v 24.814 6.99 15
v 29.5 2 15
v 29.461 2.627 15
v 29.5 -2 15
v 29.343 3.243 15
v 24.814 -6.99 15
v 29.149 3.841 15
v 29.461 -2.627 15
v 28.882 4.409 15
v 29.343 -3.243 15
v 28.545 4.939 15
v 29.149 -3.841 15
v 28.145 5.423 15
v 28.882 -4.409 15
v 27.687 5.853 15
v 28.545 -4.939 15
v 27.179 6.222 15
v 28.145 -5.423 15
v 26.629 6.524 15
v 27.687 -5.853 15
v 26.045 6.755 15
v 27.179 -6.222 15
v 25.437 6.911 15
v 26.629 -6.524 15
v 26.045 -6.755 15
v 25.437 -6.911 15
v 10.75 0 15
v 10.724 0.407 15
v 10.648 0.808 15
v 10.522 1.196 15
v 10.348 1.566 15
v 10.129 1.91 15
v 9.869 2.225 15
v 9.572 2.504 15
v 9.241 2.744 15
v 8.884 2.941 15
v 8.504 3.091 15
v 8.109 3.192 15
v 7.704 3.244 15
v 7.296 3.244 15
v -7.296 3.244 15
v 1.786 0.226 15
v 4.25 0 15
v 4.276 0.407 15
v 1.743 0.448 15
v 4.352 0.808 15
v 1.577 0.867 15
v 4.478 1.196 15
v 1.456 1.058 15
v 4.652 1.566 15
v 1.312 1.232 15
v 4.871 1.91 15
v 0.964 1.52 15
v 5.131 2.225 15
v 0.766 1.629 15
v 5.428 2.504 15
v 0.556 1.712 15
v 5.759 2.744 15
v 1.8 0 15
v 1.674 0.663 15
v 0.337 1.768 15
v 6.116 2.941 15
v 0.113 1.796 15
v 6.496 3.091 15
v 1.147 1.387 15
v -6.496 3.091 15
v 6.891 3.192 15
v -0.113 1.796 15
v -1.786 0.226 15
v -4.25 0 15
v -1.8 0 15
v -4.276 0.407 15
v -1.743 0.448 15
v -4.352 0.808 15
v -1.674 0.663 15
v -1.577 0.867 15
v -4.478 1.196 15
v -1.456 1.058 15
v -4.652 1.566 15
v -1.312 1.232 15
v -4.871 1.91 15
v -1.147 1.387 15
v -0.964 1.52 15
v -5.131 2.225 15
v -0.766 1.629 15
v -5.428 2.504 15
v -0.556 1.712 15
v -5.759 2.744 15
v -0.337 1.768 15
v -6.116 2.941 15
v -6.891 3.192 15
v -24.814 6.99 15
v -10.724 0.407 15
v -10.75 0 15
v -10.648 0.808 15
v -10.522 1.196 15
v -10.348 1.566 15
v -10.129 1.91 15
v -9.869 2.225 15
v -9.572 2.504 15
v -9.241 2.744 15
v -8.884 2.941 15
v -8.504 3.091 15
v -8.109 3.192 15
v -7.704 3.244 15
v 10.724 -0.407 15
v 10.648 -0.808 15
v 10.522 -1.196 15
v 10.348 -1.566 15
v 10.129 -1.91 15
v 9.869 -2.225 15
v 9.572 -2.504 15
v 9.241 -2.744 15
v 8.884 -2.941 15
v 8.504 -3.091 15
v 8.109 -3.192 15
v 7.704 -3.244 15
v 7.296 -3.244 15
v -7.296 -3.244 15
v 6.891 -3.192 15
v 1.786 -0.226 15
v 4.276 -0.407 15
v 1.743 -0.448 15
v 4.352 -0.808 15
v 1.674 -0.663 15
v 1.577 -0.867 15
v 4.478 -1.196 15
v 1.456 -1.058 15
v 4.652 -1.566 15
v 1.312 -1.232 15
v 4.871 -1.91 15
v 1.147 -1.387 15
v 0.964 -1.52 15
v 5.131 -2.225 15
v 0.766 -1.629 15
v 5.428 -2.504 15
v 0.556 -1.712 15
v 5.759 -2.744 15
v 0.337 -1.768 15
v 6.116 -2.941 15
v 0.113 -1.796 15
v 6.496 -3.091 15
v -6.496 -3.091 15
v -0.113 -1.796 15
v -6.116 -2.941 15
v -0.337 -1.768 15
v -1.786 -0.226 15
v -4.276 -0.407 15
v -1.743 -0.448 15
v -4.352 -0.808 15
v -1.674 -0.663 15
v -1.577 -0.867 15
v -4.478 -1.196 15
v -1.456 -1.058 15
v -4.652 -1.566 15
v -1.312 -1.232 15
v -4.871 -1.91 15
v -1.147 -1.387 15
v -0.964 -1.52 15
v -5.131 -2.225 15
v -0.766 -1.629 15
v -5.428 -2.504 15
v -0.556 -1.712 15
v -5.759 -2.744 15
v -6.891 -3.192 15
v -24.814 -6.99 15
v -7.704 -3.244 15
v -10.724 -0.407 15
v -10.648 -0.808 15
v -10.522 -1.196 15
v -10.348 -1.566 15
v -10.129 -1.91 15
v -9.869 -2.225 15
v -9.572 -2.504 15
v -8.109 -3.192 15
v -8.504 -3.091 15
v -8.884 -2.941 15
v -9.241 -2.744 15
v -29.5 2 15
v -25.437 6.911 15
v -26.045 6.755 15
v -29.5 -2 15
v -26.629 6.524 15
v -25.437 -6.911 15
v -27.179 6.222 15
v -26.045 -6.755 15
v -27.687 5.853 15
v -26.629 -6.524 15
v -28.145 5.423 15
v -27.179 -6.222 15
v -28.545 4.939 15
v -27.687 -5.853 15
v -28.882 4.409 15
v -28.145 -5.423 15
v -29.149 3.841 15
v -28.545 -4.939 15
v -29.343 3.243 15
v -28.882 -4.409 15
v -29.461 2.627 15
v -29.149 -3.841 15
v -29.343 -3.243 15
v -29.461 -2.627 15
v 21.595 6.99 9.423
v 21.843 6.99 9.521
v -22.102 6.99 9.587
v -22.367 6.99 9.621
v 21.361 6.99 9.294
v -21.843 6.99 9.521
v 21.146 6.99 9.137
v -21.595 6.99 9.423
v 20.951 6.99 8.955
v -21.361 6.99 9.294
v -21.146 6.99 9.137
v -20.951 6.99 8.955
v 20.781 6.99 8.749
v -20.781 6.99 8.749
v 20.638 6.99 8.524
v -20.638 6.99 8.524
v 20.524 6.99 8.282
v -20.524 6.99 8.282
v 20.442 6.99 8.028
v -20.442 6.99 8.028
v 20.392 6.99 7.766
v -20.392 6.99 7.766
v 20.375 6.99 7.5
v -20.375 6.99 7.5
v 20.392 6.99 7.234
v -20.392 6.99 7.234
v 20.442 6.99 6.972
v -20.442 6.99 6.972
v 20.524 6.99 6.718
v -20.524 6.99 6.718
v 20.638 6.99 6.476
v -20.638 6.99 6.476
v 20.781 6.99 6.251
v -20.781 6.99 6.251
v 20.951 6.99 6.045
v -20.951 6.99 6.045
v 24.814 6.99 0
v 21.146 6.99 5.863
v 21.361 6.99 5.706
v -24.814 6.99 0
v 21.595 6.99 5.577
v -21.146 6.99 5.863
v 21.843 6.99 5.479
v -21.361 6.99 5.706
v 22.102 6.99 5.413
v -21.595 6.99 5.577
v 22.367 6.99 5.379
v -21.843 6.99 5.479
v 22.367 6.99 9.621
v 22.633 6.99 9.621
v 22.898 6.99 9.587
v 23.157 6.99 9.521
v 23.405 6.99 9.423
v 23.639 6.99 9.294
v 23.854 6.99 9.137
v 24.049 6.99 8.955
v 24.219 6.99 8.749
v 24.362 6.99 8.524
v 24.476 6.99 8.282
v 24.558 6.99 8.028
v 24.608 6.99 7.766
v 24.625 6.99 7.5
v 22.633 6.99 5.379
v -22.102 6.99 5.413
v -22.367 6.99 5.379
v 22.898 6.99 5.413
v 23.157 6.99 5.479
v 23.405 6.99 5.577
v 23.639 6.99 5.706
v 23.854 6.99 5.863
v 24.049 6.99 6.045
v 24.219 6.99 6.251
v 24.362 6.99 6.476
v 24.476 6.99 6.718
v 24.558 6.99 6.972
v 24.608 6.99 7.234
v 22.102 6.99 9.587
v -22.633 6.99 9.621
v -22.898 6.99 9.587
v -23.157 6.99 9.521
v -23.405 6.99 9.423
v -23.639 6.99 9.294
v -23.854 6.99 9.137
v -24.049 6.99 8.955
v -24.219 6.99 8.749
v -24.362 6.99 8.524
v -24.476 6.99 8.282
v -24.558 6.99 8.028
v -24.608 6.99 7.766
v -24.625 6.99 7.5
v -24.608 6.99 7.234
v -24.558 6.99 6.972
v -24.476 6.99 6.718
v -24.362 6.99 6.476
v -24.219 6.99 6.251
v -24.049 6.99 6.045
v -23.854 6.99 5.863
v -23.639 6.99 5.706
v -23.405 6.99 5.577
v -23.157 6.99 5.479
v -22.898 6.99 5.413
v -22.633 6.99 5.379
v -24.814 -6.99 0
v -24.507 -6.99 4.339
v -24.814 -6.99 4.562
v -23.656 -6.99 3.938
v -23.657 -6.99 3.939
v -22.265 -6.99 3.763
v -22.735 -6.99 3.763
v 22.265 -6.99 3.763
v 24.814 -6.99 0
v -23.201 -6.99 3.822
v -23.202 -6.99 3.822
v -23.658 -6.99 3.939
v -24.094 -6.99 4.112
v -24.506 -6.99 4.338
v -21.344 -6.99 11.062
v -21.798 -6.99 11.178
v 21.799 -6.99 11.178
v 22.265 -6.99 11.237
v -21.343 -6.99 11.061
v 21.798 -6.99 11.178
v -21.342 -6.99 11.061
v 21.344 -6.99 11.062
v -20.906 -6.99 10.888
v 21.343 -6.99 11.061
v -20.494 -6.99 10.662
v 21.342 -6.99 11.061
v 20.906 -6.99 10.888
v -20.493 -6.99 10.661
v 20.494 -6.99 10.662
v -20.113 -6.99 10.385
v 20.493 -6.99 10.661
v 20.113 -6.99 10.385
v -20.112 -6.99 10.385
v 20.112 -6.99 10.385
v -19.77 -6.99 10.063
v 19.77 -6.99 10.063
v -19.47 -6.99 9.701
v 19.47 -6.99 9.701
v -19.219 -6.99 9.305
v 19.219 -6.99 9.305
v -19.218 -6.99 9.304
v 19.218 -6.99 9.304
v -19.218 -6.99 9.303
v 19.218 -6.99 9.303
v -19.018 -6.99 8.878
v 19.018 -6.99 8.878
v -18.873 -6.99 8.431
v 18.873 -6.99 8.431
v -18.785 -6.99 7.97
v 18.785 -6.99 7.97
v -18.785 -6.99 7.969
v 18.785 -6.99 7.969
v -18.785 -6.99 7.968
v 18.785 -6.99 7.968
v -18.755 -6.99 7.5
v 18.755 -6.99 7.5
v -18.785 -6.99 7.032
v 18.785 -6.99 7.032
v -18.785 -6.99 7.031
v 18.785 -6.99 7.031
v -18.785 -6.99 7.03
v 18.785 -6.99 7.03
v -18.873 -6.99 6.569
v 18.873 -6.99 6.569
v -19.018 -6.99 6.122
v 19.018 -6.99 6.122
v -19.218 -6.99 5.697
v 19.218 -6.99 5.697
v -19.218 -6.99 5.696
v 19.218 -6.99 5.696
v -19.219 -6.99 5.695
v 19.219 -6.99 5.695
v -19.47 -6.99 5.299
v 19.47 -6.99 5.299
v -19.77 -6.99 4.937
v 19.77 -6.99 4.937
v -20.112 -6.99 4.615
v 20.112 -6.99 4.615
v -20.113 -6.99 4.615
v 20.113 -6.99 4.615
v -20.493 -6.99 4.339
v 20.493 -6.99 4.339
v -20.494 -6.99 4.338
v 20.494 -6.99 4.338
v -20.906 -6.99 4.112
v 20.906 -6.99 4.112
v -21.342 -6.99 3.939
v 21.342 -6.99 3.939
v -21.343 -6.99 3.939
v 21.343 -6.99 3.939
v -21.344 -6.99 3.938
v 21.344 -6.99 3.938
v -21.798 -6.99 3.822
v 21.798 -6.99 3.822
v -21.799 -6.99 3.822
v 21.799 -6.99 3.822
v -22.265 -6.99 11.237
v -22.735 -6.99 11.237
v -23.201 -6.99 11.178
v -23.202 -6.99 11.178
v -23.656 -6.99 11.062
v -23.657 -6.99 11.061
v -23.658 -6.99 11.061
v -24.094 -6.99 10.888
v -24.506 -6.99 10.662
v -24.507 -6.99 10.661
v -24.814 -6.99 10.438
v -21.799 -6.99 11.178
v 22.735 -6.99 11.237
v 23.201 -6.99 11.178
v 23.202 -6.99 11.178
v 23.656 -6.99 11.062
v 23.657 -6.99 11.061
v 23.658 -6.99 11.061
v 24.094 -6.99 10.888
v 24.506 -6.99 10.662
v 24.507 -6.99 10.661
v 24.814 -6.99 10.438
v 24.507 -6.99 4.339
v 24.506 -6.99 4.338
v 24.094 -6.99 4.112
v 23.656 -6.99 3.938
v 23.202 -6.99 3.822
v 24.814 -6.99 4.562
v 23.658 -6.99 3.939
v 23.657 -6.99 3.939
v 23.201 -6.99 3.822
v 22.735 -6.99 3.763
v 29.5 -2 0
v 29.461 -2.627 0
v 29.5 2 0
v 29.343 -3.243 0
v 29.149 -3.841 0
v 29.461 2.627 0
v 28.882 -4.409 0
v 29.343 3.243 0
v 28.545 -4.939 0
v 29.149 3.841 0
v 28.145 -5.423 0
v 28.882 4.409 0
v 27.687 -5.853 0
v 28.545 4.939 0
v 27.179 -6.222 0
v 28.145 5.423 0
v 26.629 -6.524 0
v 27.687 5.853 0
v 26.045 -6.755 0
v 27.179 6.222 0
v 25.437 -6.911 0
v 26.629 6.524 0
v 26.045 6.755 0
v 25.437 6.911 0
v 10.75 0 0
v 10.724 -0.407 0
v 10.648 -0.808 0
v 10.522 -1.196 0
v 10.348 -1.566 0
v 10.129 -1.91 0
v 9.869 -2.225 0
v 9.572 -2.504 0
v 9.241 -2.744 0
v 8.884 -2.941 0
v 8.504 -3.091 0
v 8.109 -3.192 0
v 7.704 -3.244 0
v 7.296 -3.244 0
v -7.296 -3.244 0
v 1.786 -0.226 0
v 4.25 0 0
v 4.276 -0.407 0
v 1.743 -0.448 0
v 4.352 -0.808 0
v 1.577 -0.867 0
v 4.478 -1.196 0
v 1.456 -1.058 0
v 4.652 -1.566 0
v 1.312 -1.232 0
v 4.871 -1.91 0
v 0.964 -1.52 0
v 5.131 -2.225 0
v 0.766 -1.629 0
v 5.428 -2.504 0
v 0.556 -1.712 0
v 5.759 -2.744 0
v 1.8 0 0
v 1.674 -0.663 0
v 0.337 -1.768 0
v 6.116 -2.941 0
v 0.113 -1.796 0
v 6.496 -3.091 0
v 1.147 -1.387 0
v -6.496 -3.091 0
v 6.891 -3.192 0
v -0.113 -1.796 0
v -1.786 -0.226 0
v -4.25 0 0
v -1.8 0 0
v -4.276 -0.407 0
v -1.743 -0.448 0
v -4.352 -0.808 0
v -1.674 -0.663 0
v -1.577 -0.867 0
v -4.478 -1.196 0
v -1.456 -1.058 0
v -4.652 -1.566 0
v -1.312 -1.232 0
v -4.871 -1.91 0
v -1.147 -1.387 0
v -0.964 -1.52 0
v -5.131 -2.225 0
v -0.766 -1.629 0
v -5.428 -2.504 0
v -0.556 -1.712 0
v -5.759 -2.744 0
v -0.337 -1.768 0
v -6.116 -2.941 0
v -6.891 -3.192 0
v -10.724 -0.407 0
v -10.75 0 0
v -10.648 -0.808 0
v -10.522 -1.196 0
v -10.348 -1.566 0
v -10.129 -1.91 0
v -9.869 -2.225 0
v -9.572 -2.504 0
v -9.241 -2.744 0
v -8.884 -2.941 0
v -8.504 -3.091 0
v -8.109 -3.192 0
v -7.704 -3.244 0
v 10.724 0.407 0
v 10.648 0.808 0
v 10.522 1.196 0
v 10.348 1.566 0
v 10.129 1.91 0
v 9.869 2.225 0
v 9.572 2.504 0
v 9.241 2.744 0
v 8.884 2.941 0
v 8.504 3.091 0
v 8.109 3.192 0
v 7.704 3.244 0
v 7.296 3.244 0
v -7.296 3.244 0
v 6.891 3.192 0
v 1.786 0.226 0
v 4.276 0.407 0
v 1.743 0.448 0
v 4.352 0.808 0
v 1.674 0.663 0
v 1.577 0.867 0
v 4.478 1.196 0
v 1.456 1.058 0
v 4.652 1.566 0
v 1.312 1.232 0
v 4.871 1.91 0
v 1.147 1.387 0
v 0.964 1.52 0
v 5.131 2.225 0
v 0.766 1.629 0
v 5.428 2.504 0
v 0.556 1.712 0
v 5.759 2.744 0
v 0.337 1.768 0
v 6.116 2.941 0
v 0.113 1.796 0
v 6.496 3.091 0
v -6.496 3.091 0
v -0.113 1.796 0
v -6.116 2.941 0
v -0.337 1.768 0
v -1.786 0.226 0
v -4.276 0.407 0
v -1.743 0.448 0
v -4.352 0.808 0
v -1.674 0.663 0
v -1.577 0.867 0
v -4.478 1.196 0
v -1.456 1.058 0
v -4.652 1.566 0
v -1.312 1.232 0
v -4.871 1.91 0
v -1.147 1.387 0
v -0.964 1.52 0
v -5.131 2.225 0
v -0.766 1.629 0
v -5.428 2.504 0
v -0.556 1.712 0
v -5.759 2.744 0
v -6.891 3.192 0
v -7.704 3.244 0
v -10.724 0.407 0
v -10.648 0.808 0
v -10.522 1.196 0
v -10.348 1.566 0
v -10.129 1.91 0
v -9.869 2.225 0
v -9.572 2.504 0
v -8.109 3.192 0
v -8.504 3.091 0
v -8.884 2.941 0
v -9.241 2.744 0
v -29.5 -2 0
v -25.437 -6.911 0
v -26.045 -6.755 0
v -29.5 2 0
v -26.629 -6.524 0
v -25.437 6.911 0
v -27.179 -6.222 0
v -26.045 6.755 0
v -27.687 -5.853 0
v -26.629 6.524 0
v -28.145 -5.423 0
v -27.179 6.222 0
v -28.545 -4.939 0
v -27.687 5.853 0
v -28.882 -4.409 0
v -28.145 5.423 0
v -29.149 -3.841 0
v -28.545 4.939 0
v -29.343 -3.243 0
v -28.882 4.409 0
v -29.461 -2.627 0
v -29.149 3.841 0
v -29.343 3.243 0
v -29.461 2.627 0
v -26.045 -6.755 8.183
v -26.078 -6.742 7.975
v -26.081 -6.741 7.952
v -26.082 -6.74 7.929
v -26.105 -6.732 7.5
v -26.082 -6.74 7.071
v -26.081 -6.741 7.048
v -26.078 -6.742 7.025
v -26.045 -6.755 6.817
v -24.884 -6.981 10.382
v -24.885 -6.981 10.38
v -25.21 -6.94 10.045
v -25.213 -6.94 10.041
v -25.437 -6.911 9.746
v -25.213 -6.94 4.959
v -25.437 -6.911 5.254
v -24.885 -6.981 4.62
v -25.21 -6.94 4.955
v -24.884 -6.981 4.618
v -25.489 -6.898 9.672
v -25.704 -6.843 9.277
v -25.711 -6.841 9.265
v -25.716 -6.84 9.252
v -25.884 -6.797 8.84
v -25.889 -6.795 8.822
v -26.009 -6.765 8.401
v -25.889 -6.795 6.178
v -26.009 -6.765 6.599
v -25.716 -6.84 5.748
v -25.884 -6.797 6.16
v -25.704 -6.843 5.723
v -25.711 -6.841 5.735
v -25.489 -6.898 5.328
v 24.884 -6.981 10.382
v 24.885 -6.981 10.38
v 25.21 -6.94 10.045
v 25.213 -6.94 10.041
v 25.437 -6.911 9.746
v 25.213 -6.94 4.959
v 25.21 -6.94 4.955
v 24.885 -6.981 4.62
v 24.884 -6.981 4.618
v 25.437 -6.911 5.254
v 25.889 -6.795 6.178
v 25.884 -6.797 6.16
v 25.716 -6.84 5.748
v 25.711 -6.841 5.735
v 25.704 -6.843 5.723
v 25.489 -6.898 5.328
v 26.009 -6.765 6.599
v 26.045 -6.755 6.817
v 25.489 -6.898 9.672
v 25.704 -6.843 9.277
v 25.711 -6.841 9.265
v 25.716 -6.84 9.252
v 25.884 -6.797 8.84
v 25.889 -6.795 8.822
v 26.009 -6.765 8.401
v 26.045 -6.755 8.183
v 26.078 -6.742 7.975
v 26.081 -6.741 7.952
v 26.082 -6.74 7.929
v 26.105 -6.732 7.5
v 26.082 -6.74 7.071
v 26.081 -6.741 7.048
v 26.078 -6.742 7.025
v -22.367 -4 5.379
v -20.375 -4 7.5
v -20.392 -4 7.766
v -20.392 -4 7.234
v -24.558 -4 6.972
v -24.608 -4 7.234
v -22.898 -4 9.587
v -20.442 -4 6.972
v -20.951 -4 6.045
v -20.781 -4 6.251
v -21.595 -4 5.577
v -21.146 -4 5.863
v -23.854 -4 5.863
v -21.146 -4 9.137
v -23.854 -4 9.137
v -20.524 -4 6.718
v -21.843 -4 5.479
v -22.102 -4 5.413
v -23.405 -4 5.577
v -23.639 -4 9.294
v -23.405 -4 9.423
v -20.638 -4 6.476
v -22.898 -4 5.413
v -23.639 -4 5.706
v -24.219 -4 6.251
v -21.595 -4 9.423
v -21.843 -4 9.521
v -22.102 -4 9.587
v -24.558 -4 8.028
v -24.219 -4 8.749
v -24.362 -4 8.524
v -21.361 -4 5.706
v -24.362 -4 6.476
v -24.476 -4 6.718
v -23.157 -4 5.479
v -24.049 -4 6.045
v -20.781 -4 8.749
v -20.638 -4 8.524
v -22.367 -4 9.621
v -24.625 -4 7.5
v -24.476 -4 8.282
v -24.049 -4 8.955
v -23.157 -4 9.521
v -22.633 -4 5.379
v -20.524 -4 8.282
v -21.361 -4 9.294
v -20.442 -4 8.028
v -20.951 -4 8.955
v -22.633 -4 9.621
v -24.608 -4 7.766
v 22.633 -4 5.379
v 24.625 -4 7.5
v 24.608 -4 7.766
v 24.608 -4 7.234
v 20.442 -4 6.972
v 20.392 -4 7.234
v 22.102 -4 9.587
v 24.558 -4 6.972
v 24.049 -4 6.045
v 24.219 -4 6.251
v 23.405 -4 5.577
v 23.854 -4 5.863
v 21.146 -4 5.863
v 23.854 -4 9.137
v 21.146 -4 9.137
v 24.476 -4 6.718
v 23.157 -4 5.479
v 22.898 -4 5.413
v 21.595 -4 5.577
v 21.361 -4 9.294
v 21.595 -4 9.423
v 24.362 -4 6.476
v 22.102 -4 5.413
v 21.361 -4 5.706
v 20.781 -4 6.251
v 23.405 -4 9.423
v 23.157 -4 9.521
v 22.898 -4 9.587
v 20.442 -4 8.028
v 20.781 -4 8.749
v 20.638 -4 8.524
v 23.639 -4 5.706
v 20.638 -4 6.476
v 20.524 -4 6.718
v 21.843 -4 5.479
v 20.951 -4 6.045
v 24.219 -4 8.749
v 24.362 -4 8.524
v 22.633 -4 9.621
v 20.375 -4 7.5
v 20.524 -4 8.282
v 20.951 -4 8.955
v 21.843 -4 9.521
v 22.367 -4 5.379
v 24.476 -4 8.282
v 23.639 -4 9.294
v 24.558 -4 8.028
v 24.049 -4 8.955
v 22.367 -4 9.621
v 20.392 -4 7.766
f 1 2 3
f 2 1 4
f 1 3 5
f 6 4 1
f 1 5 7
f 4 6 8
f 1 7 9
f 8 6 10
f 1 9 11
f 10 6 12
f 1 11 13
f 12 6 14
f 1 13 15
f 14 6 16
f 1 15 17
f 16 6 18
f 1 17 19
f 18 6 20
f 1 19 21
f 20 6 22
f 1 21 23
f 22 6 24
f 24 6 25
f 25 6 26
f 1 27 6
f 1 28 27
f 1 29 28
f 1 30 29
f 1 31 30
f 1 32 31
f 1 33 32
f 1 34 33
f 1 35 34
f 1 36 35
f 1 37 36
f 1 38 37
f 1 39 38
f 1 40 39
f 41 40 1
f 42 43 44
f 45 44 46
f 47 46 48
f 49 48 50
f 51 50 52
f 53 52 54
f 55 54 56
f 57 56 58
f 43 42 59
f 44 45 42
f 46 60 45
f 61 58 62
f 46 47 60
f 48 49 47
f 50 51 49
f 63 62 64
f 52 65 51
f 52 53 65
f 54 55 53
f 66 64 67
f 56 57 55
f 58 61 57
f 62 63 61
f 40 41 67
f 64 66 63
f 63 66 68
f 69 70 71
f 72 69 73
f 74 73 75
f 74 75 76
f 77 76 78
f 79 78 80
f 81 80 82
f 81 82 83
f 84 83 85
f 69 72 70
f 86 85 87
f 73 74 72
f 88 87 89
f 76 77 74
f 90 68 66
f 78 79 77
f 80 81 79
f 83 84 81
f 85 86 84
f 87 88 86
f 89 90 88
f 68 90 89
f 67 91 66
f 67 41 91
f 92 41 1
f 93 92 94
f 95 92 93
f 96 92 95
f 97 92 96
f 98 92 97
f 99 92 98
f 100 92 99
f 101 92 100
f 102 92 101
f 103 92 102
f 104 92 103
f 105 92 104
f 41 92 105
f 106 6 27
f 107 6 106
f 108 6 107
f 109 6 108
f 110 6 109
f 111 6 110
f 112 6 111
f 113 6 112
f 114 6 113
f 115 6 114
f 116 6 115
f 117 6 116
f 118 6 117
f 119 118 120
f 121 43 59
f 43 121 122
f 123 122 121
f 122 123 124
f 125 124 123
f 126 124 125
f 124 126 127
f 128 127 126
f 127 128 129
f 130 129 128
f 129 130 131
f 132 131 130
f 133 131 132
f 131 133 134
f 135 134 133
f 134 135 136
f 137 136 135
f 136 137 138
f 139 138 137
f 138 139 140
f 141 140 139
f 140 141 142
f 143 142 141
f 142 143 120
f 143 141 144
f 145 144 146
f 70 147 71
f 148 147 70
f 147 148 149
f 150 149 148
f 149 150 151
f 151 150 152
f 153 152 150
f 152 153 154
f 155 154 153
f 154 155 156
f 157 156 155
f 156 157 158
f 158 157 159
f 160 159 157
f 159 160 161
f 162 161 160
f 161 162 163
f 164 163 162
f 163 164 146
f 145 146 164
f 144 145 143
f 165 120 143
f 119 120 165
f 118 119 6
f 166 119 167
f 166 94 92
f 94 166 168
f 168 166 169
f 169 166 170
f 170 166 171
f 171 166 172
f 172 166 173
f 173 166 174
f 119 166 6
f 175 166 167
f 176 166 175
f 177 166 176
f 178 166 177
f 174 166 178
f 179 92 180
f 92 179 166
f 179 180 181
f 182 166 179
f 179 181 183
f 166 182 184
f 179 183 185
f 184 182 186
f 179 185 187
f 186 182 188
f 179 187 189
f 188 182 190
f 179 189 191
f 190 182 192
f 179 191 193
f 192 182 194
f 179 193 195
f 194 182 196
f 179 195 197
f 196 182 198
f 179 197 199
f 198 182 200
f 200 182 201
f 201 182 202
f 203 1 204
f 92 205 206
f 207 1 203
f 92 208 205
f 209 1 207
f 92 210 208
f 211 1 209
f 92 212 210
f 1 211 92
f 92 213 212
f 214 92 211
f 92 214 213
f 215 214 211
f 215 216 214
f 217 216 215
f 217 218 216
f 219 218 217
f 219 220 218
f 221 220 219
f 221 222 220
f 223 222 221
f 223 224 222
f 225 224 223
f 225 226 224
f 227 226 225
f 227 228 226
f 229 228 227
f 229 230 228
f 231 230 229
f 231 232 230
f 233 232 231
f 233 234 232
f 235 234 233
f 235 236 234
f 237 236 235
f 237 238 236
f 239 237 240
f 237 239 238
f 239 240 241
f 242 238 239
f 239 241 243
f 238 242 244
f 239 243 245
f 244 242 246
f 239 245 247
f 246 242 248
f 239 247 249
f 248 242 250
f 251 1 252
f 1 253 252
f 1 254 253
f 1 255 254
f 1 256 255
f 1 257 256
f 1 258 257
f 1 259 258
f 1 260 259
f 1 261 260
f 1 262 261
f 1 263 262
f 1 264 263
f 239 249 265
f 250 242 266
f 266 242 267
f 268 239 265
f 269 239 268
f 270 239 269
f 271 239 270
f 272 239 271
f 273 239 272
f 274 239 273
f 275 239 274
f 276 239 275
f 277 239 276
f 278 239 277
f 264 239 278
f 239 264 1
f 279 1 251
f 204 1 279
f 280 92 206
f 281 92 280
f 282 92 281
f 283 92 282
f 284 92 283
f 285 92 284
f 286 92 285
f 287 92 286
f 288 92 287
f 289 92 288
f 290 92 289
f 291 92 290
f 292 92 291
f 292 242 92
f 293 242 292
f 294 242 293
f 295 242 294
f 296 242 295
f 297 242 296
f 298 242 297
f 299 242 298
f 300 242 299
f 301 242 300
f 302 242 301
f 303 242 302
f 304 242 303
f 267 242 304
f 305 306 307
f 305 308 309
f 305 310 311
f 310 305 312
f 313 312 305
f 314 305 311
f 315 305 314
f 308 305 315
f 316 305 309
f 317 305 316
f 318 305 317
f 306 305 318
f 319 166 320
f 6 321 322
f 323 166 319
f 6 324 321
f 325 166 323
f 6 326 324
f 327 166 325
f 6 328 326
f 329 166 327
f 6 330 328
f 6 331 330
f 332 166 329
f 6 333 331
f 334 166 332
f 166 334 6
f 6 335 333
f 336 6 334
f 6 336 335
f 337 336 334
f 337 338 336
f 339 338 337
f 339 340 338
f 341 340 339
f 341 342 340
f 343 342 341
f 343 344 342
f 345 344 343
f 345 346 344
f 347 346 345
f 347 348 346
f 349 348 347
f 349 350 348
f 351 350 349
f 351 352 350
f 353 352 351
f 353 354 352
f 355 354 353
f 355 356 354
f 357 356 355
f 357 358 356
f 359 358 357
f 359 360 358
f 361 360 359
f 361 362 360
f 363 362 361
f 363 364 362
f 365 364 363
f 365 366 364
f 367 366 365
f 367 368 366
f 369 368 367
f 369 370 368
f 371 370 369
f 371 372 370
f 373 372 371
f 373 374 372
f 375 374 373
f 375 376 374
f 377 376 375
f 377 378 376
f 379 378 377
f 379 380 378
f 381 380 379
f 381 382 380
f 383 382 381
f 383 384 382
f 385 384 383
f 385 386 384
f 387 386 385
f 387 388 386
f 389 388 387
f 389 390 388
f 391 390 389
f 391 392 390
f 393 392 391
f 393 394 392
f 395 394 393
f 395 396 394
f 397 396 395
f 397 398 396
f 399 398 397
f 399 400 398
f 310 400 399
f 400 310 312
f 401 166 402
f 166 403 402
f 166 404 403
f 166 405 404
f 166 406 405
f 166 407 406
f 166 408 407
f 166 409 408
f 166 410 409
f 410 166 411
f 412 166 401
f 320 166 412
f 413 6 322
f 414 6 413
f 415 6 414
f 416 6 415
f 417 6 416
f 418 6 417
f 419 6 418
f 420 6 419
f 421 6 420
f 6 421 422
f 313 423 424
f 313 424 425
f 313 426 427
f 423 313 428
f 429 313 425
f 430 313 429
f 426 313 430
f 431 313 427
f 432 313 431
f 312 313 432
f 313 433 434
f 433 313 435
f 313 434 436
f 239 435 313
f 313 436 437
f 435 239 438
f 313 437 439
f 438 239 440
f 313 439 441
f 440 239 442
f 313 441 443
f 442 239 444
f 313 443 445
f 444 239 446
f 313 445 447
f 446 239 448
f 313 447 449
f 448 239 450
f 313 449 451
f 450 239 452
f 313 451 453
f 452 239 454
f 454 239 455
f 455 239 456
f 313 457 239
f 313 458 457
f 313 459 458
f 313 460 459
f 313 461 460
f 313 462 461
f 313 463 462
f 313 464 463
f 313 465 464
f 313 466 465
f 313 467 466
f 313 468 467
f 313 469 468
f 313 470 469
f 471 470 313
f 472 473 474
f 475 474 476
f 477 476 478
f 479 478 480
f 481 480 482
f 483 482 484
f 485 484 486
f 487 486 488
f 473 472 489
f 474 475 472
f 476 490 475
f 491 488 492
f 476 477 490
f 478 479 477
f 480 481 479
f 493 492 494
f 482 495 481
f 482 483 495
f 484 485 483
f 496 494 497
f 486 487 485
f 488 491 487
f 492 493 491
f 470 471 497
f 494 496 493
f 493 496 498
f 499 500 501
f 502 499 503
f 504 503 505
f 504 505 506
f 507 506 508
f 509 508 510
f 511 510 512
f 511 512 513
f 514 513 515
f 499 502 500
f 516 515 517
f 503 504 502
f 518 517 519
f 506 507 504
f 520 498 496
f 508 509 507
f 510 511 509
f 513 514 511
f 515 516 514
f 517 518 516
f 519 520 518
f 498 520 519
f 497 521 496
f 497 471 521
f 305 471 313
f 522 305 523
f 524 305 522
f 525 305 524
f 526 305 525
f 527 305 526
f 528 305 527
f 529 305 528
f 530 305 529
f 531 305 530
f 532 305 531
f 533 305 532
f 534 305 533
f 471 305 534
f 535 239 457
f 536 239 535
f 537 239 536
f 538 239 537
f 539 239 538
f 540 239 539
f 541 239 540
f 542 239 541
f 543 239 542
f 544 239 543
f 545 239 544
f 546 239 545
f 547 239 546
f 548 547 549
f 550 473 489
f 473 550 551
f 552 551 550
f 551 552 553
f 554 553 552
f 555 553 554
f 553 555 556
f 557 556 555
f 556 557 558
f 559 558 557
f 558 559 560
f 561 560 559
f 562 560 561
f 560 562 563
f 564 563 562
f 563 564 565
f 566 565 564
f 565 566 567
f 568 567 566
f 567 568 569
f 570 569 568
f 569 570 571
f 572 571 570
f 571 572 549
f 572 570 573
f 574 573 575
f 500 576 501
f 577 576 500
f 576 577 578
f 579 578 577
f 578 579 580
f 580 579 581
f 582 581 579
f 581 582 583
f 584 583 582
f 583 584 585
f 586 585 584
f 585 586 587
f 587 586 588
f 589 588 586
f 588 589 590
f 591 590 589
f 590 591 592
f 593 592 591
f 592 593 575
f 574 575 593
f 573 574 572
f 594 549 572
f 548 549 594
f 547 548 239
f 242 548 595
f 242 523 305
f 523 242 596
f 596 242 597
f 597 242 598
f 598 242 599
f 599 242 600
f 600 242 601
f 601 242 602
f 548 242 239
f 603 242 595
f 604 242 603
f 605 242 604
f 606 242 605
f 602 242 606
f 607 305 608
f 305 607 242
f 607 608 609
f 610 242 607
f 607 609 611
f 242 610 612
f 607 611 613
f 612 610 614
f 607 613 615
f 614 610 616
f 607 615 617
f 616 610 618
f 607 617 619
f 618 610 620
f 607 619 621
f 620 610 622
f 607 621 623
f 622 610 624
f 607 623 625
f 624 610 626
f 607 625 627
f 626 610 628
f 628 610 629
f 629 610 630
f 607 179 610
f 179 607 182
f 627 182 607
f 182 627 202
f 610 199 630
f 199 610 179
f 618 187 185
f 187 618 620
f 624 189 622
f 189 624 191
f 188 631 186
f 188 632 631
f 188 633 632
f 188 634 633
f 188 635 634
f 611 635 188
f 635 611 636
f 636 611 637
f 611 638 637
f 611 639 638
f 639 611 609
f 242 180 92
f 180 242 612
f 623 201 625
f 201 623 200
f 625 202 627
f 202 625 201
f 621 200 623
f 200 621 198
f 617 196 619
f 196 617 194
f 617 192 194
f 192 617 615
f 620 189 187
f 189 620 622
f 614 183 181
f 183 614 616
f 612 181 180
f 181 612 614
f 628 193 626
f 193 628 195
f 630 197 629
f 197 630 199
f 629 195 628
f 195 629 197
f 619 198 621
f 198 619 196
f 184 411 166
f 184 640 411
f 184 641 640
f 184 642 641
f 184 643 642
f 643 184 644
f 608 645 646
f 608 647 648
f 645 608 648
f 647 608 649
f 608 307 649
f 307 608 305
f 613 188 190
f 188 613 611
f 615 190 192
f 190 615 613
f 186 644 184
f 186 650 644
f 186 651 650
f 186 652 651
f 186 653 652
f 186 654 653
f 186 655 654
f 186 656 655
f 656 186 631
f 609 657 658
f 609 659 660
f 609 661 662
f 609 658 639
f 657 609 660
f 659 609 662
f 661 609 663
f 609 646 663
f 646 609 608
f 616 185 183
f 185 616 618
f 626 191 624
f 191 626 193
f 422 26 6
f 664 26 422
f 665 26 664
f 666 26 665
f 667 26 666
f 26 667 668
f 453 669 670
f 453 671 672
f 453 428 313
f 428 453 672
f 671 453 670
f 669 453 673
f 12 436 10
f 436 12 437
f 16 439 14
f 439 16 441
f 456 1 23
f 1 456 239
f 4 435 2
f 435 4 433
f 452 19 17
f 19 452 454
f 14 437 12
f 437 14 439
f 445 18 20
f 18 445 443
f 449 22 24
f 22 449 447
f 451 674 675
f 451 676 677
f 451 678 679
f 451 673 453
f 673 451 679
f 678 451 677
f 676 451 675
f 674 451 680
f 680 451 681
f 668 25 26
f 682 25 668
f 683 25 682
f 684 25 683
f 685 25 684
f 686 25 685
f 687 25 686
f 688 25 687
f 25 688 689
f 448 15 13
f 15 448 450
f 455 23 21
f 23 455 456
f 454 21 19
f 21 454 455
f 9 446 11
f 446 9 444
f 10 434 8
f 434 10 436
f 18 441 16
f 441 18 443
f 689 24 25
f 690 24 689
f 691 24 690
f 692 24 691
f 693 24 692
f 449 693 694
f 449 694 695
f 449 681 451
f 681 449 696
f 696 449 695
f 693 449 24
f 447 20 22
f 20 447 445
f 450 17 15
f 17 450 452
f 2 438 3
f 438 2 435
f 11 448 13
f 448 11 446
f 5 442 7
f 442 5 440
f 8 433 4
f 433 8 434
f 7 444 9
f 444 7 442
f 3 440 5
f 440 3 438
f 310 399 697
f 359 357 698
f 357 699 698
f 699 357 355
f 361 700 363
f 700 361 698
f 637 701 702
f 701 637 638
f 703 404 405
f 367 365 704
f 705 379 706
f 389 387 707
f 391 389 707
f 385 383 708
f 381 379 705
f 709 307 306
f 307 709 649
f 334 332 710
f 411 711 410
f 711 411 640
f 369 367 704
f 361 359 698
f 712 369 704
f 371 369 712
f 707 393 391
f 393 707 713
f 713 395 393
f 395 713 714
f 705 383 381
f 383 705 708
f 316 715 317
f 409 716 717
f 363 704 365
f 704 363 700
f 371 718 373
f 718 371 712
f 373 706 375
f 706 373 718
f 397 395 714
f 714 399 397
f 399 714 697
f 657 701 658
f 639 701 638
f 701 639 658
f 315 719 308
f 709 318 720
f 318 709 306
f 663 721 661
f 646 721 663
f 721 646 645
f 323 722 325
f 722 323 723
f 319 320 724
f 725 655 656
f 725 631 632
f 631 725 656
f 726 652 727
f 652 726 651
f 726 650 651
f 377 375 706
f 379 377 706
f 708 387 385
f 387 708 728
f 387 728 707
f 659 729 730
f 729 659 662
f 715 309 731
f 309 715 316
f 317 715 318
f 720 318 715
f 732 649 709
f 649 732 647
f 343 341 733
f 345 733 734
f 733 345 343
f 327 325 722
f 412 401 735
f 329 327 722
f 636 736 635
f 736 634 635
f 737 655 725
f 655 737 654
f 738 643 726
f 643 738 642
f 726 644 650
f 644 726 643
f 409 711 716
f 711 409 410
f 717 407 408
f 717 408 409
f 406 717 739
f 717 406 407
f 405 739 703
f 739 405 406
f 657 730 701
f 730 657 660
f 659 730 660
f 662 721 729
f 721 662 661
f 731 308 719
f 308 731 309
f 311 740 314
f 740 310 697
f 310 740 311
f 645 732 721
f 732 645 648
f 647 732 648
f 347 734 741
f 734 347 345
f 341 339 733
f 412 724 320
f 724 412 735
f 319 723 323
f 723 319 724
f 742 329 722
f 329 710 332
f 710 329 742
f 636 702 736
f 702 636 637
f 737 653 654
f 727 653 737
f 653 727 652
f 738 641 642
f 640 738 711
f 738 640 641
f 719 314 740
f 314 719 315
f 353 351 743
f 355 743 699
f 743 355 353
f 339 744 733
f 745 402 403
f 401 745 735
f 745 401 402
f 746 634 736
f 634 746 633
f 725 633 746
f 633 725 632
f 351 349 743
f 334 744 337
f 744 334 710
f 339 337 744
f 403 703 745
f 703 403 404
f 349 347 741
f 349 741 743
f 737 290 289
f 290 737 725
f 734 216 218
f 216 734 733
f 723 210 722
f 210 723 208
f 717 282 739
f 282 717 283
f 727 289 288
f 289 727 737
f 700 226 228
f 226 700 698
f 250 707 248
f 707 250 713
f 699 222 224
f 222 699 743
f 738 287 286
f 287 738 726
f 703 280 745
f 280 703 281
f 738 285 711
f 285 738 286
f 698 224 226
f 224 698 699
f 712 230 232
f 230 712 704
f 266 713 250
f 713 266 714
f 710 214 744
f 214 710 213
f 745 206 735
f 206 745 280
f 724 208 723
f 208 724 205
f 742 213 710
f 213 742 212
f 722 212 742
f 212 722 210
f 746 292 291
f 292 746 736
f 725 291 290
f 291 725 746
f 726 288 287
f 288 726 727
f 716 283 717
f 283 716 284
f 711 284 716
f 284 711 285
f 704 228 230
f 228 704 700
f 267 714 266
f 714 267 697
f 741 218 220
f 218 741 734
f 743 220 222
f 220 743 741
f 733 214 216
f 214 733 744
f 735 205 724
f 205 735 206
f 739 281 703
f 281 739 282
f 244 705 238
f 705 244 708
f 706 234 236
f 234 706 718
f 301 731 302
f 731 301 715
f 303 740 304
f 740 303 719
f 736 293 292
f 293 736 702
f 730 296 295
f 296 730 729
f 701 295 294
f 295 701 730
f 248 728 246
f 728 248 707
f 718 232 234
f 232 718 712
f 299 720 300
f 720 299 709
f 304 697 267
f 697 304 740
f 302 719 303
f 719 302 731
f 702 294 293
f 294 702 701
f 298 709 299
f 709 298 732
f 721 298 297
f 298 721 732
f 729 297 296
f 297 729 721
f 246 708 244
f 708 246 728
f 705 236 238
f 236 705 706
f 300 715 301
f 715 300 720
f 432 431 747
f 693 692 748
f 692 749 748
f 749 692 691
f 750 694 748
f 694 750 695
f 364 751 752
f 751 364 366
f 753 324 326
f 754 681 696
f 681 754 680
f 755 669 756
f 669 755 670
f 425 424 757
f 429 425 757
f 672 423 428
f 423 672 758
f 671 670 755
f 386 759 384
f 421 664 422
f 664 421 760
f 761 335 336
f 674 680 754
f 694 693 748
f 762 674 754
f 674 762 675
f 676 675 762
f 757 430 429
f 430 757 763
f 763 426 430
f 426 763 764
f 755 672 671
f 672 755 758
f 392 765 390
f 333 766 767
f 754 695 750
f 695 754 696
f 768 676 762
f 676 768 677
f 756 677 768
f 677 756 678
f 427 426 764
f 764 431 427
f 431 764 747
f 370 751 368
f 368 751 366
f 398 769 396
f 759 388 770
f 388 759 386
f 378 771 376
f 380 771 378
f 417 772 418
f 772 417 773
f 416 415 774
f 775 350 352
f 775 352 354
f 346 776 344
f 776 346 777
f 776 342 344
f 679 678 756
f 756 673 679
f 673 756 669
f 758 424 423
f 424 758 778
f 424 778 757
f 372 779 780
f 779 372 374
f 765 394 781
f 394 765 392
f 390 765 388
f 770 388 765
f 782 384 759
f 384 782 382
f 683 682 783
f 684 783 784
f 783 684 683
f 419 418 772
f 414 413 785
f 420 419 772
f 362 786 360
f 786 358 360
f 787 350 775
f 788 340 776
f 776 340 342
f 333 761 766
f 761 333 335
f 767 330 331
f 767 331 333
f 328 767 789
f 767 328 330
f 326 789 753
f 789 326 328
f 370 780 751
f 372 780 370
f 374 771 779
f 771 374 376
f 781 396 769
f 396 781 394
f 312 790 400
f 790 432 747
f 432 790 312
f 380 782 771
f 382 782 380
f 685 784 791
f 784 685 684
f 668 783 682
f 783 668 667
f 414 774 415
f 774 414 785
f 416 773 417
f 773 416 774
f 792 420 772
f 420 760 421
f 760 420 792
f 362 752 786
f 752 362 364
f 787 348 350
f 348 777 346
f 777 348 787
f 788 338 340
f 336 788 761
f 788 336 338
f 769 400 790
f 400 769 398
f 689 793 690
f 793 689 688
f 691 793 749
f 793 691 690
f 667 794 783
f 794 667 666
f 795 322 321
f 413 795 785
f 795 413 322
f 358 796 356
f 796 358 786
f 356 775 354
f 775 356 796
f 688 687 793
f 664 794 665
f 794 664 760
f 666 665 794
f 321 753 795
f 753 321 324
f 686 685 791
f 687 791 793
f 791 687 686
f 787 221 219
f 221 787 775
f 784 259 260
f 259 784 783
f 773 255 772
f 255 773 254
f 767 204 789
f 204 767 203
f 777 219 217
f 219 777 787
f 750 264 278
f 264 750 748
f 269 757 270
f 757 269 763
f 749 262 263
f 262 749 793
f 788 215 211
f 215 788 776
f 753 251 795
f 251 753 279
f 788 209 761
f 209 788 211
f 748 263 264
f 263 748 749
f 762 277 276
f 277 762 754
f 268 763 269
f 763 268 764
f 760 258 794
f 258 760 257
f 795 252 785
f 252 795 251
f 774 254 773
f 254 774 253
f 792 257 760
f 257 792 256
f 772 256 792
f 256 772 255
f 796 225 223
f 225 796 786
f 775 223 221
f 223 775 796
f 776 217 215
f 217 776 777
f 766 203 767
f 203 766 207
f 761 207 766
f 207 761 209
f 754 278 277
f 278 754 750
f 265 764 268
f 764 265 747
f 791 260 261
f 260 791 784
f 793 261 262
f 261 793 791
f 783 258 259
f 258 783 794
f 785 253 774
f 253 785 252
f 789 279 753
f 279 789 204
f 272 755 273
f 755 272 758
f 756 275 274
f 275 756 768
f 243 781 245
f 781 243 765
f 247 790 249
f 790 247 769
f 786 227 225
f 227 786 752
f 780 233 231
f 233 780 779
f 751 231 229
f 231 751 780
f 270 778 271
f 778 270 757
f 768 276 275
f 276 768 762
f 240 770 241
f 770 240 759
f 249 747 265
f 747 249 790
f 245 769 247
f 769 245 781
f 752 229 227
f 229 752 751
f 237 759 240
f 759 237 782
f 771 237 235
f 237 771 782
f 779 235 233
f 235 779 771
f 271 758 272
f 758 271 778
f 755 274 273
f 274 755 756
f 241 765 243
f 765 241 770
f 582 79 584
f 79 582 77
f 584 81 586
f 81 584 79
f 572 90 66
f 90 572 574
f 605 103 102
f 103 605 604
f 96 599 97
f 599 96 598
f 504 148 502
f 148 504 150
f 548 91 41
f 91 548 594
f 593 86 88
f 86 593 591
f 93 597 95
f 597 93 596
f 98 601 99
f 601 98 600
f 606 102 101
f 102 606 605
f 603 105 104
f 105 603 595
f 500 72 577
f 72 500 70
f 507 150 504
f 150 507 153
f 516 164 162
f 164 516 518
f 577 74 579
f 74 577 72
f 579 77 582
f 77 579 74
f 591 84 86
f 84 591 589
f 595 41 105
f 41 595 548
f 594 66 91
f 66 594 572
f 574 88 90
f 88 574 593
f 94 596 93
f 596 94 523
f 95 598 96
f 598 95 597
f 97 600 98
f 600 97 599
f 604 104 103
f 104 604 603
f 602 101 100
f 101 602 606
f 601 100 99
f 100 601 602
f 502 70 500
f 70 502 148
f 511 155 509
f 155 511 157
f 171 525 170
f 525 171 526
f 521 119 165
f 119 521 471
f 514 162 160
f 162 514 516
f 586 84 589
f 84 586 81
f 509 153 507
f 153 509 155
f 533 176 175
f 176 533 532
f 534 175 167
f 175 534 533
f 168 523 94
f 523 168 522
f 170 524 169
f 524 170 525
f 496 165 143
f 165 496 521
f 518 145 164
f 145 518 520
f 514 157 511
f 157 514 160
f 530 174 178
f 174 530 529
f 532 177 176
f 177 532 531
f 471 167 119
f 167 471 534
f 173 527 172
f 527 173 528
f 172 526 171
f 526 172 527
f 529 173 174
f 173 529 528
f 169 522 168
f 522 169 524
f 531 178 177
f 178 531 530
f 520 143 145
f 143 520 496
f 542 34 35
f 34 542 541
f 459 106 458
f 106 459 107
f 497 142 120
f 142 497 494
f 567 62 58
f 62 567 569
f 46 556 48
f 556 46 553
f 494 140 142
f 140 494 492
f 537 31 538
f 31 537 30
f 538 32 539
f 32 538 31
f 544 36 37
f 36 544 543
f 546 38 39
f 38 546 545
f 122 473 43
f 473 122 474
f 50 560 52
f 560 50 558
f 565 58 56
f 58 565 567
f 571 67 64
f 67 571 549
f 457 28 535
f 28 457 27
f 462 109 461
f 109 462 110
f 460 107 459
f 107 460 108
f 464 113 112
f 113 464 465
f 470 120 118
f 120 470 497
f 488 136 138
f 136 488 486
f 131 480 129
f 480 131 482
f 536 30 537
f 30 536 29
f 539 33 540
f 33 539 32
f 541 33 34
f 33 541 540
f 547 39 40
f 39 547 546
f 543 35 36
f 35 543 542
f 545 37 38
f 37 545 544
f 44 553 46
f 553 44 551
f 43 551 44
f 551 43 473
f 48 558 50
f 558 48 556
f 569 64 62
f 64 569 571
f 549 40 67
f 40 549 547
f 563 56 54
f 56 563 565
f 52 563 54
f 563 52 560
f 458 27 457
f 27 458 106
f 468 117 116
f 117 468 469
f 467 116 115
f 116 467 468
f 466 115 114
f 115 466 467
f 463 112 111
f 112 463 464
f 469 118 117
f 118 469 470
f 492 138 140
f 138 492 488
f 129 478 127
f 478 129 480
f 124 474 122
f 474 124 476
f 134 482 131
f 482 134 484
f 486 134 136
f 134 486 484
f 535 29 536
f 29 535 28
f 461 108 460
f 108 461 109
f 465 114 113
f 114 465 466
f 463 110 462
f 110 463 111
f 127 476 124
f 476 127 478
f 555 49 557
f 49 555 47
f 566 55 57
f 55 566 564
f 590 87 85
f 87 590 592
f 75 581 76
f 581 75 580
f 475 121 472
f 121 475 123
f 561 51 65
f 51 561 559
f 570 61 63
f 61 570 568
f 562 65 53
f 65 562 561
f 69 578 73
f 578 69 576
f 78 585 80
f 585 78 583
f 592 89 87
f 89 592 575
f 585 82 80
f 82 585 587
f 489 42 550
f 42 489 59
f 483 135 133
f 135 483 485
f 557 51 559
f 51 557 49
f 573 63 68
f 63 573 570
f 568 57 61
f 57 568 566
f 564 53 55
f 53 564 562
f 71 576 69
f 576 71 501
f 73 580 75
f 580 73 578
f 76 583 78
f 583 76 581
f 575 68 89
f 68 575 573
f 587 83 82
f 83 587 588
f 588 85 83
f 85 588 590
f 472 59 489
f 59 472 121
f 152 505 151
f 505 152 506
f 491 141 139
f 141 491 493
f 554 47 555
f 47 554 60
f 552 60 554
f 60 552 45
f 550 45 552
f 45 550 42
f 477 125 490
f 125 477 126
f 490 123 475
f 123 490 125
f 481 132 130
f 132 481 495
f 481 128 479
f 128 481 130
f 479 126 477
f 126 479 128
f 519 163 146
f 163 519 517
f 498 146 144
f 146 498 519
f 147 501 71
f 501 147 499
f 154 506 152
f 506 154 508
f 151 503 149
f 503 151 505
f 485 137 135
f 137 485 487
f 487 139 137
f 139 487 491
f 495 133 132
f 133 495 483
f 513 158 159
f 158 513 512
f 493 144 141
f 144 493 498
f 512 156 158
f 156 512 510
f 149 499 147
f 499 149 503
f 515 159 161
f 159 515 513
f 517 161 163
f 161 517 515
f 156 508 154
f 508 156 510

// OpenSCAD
$fn = 50;


difference() {
	union() {
		hull() {
			translate(v = [-9.5000000000, 2.0000000000, 0]) {
				cylinder(h = 15, r = 5);
			}
			translate(v = [9.5000000000, 2.0000000000, 0]) {
				cylinder(h = 15, r = 5);
			}
			translate(v = [-9.5000000000, -2.0000000000, 0]) {
				cylinder(h = 15, r = 5);
			}
			translate(v = [9.5000000000, -2.0000000000, 0]) {
				cylinder(h = 15, r = 5);
			}
		}
		translate(v = [-15.0000000000, 0.0000000000, 0]) {
			hull() {
				translate(v = [-9.5000000000, 2.0000000000, 0]) {
					cylinder(h = 15, r = 5);
				}
				translate(v = [9.5000000000, 2.0000000000, 0]) {
					cylinder(h = 15, r = 5);
				}
				translate(v = [-9.5000000000, -2.0000000000, 0]) {
					cylinder(h = 15, r = 5);
				}
				translate(v = [9.5000000000, -2.0000000000, 0]) {
					cylinder(h = 15, r = 5);
				}
			}
		}
		translate(v = [15.0000000000, 0.0000000000, 0]) {
			hull() {
				translate(v = [-9.5000000000, 2.0000000000, 0]) {
					cylinder(h = 15, r = 5);
				}
				translate(v = [9.5000000000, 2.0000000000, 0]) {
					cylinder(h = 15, r = 5);
				}
				translate(v = [-9.5000000000, -2.0000000000, 0]) {
					cylinder(h = 15, r = 5);
				}
				translate(v = [9.5000000000, -2.0000000000, 0]) {
					cylinder(h = 15, r = 5);
				}
			}
		}
	}
	union() {
		translate(v = [-22.5000000000, -7.0000000000, 7.5000000000]) {
			rotate(a = [90, 0, 0]) {
				difference() {
					union() {
						#translate(v = [0, 0, -14.0000000000]) {
							cylinder(h = 14, r = 2.0000000000);
						}
						#translate(v = [0, 0, -3]) {
							cylinder(h = 3, r1 = 2.1250000000, r2 = 3.7500000000);
						}
						#translate(v = [0, 0, -14.0000000000]) {
							cylinder(h = 14, r = 2.1250000000);
						}
						#translate(v = [0, 0, -14.0000000000]) {
							cylinder(h = 14, r = 2.0000000000);
						}
					}
					union();
				}
			}
		}
		translate(v = [22.5000000000, -7.0000000000, 7.5000000000]) {
			rotate(a = [90, 0, 0]) {
				difference() {
					union() {
						#translate(v = [0, 0, -14.0000000000]) {
							cylinder(h = 14, r = 2.0000000000);
						}
						#translate(v = [0, 0, -3]) {
							cylinder(h = 3, r1 = 2.1250000000, r2 = 3.7500000000);
						}
						#translate(v = [0, 0, -14.0000000000]) {
							cylinder(h = 14, r = 2.1250000000);
						}
						#translate(v = [0, 0, -14.0000000000]) {
							cylinder(h = 14, r = 2.0000000000);
						}
					}
					union();
				}
			}
		}
		translate(v = [-7.5000000000, 0.0000000000, 0]) {
			translate(v = [0, 0, -100]) {
				cylinder(h = 200, r = 3.2500000000);
			}
		}
		translate(v = [7.5000000000, 0.0000000000, 0]) {
			translate(v = [0, 0, -100]) {
				cylinder(h = 200, r = 3.2500000000);
			}
		}
		translate(v = [-7.5000000000, 0.0000000000, 0]) {
			translate(v = [0, 0, -100]) {
				cylinder(h = 200, r = 1.8000000000);
			}
		}
		translate(v = [0, 0, -100]) {
			cylinder(h = 200, r = 1.8000000000);
		}
		translate(v = [7.5000000000, 0.0000000000, 0]) {
			translate(v = [0, 0, -100]) {
				cylinder(h = 200, r = 1.8000000000);
			}
		}
	}
}
